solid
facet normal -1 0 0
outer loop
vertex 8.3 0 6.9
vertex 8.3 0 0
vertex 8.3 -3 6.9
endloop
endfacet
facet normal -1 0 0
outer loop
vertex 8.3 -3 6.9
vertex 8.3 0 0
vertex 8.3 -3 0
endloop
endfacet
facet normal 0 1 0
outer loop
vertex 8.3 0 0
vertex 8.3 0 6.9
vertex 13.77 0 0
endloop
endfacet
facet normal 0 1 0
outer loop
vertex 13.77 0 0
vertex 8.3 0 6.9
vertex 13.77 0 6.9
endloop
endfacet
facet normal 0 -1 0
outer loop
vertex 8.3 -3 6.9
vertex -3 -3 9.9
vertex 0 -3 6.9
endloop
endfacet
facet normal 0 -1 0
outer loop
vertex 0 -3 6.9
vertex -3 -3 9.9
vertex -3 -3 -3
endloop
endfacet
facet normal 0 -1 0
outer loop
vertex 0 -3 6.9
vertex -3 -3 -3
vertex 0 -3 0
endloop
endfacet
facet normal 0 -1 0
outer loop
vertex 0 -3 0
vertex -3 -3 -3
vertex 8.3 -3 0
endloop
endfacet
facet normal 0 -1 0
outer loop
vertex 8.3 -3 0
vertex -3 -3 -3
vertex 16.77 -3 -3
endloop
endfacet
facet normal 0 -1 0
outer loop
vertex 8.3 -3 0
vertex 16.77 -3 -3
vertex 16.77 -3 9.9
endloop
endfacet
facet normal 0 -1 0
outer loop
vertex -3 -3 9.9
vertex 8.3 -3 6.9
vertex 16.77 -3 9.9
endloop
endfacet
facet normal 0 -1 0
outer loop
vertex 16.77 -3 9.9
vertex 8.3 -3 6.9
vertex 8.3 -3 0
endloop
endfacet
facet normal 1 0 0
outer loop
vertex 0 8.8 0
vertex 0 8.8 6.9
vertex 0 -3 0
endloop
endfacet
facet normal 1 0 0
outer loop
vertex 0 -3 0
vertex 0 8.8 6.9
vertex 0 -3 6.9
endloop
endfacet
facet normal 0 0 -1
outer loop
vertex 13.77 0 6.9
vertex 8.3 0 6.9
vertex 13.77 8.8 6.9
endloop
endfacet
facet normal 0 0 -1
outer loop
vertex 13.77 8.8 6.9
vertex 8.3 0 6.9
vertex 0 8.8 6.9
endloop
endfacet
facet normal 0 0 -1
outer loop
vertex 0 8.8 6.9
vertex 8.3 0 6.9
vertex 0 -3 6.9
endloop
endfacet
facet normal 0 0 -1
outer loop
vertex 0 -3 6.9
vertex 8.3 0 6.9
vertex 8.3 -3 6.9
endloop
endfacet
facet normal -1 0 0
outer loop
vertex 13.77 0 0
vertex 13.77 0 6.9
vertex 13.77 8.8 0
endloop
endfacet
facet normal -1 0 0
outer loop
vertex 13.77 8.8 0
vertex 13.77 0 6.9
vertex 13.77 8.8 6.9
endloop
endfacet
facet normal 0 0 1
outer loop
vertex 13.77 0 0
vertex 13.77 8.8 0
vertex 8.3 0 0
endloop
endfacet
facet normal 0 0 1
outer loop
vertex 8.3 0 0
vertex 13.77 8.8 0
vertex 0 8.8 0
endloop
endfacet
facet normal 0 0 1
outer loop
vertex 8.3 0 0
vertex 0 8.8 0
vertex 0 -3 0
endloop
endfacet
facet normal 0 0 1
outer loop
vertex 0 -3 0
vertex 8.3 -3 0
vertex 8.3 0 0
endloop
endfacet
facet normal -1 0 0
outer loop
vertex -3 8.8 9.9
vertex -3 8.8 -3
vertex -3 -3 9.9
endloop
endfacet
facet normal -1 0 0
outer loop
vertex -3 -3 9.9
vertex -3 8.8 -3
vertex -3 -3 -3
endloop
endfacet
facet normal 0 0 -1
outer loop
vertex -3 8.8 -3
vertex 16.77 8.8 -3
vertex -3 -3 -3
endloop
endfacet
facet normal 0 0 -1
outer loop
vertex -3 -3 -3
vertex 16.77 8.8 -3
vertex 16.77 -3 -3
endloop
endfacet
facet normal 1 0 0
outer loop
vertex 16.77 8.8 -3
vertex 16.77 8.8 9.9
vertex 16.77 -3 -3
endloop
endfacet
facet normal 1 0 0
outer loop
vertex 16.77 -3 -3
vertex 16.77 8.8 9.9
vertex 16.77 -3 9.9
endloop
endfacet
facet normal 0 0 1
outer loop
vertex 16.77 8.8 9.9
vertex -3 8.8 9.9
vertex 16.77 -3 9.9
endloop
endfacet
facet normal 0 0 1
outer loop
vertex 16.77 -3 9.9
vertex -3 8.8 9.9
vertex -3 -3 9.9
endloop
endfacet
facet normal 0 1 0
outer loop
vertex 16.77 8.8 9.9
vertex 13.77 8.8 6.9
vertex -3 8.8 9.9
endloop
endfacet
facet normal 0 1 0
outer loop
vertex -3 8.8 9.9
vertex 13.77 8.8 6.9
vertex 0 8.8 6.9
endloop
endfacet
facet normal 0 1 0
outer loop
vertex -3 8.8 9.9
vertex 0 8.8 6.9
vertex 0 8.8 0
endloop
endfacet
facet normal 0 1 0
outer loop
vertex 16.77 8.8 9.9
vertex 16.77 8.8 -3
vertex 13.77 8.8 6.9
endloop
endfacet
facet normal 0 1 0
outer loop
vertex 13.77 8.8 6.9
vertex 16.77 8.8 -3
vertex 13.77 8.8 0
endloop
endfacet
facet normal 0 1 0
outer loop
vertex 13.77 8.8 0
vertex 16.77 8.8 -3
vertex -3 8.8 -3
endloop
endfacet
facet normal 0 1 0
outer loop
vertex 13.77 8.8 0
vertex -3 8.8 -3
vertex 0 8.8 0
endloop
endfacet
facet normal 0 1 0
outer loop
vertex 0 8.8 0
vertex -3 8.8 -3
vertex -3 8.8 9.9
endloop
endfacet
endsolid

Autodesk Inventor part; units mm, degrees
ref_plane "YZ Plane" through (0, 0, 0) normal (1, 0, 0) x (0, 1, 0)
ref_plane "XZ Plane" through (0, 0, 0) normal (0, 1, 0) x (-1, 0, 0)
ref_plane "XY Plane" through (0, 0, 0) normal (0, 0, 1) x (1, 0, 0)
sketch "Sketch1" plane through (0, 0, 0) normal (0, 1, 0) x (-1, 0, 0)
  line L0 (0, 0) -> (-13.77, 0)
  line L1 (-13.77, 0) -> (-13.77, 6.9)
  line L2 (-13.77, 6.9) -> (0, 6.9)
  line L3 (0, 6.9) -> (0, 0)
  line L4 (3, -3) -> (-16.77, -3)
  line L5 (-16.77, -3) -> (-16.77, 9.9)
  line L6 (-16.77, 9.9) -> (3, 9.9)
  line L7 (3, 9.9) -> (3, -3)
  point P0 (-6.885, -3)
  point P1 (-6.885, 0)
  point P2 (3, 3.45)
  dimension "d0" = 13.77
  dimension "d1" = 6.9
  dimension "d2" = 3
  dimension "d3" = 3
  dimension "d4" = 3
  dimension "d5" = 3
extrude "Extrusion1" add sketch "Sketch1" along normal blind 8.8
sketch "Sketch2" plane through (0, 0, 0) normal (0, -1, 0) x (1, 0, 0)
  line L0 (-3, 9.9) -> (16.77, 9.9) projected
  line L1 (16.77, -3) -> (-3, -3) projected
  line L2 (-3, 9.9) -> (16.77, 9.9)
  line L3 (16.77, 9.9) -> (16.77, -3)
  line L4 (16.77, -3) -> (-3, -3)
  line L5 (-3, -3) -> (-3, 9.9)
  point P0 (0, 0)
  point P1 (16.77, 9.9)
extrude "Extrusion2" add sketch "Sketch2" along normal blind 3
sketch "Sketch3" plane through (0, 0, 0) normal (0, 1, 0) x (1, 0, 0)
  line L0 (0, -6.9) -> (0, 0) projected
  line L1 (13.77, -6.9) -> (0, -6.9) projected
  line L2 (0, 0) -> (8.3, 0)
  line L3 (8.3, 0) -> (8.3, -6.9)
  line L4 (8.3, -6.9) -> (0, -6.9)
  line L5 (0, -6.9) -> (0, 0)
  dimension "d10" = 8.3
extrude "Extrusion3" cut sketch "Sketch3" against normal blind 3
equation "\"d3\" = d2"
equation "\"d5\" = d4"
properties part number "switch test v02"
